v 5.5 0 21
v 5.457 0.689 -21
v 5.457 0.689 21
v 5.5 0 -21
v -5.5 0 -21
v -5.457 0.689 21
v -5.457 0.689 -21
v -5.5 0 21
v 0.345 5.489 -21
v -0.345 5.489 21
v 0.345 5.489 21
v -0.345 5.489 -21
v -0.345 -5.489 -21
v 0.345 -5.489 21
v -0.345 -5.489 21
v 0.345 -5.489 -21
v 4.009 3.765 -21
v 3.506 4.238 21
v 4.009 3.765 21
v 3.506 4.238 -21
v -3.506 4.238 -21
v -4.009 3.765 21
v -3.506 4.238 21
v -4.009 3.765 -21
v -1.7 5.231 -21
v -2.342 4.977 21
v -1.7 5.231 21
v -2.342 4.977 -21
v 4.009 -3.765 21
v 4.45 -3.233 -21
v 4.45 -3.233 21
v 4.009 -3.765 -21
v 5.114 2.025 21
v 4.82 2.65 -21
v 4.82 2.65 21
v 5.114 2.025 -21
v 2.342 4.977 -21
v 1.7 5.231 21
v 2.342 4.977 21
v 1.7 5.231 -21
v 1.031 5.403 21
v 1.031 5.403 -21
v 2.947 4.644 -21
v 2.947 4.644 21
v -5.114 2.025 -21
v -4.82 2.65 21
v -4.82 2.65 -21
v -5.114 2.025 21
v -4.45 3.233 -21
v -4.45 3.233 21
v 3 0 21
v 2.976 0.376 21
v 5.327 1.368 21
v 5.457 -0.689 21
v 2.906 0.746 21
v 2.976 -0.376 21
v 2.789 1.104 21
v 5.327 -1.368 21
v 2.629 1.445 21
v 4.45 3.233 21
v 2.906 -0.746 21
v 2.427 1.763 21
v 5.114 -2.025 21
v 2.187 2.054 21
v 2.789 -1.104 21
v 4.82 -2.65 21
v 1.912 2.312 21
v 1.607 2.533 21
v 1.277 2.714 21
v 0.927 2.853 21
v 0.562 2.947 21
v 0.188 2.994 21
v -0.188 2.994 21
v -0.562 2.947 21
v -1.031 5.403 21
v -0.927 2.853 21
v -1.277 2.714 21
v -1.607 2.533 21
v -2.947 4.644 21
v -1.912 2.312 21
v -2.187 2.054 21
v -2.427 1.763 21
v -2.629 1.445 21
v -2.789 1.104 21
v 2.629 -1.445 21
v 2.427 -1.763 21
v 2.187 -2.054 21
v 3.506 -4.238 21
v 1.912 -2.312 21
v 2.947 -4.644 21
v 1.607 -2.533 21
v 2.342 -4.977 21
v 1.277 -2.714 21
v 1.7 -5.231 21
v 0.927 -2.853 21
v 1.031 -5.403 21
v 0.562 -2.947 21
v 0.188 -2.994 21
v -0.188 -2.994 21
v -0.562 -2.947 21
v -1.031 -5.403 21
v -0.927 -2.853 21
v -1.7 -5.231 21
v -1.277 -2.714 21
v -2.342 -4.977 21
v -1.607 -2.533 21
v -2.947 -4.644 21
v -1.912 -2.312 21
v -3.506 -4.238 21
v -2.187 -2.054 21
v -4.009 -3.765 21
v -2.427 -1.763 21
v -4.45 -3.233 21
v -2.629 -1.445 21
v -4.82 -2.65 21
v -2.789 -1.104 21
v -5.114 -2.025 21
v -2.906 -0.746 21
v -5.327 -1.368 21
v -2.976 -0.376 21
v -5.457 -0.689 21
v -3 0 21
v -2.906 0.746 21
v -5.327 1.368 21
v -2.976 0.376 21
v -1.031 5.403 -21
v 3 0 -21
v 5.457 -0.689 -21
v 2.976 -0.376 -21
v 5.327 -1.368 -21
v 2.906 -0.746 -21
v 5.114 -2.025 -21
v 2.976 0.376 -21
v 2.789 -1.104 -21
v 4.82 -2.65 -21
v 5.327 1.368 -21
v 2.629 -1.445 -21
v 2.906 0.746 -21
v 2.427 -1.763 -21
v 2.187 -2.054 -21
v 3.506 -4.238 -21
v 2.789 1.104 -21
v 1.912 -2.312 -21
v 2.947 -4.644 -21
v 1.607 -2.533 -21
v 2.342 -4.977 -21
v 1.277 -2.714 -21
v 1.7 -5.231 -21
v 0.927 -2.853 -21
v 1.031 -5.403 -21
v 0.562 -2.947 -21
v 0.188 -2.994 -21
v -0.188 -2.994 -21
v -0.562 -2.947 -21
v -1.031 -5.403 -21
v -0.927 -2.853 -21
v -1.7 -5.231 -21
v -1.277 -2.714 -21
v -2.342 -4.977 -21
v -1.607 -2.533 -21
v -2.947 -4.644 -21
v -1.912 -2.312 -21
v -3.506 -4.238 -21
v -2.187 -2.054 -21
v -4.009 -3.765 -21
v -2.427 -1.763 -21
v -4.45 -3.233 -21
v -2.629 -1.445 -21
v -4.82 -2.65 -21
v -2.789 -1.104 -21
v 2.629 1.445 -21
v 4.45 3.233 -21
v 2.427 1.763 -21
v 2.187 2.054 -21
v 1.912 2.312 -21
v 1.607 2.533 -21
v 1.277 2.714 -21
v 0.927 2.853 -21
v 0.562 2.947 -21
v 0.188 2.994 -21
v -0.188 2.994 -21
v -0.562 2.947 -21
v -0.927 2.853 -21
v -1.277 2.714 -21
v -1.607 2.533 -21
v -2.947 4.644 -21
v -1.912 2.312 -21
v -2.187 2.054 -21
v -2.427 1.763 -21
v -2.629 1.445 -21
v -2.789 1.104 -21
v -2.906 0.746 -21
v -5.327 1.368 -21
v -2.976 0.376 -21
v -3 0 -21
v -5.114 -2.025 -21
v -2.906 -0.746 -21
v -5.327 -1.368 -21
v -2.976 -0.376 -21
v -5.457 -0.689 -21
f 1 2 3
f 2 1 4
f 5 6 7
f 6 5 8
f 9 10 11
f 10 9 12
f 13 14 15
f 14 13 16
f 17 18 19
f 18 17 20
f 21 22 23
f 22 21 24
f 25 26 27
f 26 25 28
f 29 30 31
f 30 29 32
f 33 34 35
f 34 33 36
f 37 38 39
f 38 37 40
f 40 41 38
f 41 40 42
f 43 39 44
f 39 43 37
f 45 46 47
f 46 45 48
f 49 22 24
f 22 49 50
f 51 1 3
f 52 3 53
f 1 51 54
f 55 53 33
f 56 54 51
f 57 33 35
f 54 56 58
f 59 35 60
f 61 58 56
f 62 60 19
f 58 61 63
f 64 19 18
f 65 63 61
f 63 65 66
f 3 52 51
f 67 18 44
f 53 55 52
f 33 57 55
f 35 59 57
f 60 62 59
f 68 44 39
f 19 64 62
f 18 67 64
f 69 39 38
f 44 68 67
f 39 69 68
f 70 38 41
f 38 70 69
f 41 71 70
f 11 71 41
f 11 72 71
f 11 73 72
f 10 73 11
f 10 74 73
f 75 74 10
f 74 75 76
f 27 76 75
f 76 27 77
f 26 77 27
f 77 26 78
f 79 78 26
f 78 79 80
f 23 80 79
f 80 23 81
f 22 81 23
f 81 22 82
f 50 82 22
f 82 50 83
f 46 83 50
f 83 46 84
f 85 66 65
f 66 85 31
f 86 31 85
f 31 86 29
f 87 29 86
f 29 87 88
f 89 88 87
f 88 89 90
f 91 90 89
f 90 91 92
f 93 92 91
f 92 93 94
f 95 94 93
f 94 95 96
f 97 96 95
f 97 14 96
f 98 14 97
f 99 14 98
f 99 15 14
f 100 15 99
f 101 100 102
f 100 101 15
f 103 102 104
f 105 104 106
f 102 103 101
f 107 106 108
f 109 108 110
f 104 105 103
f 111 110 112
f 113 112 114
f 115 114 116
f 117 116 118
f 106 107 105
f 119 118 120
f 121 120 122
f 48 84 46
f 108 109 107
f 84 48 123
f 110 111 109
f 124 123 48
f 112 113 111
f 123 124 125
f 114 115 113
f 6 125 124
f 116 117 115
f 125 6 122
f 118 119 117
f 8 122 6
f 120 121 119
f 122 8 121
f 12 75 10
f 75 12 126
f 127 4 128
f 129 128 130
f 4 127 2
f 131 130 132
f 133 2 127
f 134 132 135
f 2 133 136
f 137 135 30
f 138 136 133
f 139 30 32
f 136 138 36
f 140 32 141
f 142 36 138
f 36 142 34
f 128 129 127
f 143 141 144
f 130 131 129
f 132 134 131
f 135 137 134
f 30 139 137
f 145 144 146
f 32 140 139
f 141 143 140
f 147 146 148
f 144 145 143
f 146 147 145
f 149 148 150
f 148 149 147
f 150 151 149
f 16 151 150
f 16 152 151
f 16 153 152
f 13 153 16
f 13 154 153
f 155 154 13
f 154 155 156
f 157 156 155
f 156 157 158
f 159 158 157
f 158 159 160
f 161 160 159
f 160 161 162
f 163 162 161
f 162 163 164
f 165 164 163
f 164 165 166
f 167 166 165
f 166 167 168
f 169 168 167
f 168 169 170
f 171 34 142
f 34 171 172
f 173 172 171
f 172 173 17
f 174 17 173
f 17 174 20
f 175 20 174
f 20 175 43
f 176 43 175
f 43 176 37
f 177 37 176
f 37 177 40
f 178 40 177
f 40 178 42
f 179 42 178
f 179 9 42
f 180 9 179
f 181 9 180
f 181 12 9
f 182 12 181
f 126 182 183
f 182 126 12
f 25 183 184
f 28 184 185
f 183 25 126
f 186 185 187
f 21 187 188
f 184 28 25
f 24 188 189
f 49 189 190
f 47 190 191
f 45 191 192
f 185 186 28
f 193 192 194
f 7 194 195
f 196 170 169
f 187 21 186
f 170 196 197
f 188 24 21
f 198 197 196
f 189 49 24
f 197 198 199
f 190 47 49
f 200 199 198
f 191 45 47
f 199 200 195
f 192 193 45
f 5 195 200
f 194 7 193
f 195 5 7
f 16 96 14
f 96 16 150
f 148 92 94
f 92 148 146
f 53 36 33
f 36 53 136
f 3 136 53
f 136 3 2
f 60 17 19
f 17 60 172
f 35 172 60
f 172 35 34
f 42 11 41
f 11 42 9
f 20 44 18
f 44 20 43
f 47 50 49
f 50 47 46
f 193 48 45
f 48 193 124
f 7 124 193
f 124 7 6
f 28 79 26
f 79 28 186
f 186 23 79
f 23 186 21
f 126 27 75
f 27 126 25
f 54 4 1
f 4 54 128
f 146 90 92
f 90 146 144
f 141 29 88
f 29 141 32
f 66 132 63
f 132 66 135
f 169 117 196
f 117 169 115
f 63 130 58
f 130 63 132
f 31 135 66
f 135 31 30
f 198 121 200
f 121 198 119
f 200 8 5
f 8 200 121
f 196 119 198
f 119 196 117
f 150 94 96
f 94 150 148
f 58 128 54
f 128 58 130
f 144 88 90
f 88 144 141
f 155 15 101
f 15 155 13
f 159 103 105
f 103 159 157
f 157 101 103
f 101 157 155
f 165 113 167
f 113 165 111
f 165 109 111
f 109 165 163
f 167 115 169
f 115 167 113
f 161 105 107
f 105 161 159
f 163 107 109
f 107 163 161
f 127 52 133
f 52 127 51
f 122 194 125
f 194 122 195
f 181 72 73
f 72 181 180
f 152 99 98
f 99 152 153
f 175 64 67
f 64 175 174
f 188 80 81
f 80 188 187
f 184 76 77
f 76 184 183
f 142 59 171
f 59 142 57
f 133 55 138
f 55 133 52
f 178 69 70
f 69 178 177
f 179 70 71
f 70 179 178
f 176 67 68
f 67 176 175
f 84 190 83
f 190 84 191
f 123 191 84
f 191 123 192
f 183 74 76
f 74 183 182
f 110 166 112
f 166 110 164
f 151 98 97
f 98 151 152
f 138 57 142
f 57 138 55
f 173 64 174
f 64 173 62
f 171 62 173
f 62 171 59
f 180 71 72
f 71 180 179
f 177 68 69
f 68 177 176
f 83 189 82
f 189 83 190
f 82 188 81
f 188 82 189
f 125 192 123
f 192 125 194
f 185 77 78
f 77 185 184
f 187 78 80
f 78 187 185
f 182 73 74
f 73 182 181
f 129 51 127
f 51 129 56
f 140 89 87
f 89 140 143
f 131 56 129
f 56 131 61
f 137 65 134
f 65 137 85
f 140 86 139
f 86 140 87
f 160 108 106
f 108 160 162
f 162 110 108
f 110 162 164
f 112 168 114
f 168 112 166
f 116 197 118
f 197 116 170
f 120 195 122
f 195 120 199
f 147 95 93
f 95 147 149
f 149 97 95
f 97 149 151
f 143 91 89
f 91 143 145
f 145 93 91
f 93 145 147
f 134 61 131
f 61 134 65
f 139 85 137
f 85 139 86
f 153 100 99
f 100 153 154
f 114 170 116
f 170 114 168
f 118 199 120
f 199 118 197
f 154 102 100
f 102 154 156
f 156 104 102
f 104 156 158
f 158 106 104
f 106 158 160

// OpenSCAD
$fn = 50;


difference() {
	union() {
		translate(v = [0, 0, -21.0000000000]) {
			cylinder(h = 42, r = 5.5000000000);
		}
	}
	union() {
		translate(v = [0, 0, -100.0000000000]) {
			cylinder(h = 200, r = 3);
		}
	}
}
